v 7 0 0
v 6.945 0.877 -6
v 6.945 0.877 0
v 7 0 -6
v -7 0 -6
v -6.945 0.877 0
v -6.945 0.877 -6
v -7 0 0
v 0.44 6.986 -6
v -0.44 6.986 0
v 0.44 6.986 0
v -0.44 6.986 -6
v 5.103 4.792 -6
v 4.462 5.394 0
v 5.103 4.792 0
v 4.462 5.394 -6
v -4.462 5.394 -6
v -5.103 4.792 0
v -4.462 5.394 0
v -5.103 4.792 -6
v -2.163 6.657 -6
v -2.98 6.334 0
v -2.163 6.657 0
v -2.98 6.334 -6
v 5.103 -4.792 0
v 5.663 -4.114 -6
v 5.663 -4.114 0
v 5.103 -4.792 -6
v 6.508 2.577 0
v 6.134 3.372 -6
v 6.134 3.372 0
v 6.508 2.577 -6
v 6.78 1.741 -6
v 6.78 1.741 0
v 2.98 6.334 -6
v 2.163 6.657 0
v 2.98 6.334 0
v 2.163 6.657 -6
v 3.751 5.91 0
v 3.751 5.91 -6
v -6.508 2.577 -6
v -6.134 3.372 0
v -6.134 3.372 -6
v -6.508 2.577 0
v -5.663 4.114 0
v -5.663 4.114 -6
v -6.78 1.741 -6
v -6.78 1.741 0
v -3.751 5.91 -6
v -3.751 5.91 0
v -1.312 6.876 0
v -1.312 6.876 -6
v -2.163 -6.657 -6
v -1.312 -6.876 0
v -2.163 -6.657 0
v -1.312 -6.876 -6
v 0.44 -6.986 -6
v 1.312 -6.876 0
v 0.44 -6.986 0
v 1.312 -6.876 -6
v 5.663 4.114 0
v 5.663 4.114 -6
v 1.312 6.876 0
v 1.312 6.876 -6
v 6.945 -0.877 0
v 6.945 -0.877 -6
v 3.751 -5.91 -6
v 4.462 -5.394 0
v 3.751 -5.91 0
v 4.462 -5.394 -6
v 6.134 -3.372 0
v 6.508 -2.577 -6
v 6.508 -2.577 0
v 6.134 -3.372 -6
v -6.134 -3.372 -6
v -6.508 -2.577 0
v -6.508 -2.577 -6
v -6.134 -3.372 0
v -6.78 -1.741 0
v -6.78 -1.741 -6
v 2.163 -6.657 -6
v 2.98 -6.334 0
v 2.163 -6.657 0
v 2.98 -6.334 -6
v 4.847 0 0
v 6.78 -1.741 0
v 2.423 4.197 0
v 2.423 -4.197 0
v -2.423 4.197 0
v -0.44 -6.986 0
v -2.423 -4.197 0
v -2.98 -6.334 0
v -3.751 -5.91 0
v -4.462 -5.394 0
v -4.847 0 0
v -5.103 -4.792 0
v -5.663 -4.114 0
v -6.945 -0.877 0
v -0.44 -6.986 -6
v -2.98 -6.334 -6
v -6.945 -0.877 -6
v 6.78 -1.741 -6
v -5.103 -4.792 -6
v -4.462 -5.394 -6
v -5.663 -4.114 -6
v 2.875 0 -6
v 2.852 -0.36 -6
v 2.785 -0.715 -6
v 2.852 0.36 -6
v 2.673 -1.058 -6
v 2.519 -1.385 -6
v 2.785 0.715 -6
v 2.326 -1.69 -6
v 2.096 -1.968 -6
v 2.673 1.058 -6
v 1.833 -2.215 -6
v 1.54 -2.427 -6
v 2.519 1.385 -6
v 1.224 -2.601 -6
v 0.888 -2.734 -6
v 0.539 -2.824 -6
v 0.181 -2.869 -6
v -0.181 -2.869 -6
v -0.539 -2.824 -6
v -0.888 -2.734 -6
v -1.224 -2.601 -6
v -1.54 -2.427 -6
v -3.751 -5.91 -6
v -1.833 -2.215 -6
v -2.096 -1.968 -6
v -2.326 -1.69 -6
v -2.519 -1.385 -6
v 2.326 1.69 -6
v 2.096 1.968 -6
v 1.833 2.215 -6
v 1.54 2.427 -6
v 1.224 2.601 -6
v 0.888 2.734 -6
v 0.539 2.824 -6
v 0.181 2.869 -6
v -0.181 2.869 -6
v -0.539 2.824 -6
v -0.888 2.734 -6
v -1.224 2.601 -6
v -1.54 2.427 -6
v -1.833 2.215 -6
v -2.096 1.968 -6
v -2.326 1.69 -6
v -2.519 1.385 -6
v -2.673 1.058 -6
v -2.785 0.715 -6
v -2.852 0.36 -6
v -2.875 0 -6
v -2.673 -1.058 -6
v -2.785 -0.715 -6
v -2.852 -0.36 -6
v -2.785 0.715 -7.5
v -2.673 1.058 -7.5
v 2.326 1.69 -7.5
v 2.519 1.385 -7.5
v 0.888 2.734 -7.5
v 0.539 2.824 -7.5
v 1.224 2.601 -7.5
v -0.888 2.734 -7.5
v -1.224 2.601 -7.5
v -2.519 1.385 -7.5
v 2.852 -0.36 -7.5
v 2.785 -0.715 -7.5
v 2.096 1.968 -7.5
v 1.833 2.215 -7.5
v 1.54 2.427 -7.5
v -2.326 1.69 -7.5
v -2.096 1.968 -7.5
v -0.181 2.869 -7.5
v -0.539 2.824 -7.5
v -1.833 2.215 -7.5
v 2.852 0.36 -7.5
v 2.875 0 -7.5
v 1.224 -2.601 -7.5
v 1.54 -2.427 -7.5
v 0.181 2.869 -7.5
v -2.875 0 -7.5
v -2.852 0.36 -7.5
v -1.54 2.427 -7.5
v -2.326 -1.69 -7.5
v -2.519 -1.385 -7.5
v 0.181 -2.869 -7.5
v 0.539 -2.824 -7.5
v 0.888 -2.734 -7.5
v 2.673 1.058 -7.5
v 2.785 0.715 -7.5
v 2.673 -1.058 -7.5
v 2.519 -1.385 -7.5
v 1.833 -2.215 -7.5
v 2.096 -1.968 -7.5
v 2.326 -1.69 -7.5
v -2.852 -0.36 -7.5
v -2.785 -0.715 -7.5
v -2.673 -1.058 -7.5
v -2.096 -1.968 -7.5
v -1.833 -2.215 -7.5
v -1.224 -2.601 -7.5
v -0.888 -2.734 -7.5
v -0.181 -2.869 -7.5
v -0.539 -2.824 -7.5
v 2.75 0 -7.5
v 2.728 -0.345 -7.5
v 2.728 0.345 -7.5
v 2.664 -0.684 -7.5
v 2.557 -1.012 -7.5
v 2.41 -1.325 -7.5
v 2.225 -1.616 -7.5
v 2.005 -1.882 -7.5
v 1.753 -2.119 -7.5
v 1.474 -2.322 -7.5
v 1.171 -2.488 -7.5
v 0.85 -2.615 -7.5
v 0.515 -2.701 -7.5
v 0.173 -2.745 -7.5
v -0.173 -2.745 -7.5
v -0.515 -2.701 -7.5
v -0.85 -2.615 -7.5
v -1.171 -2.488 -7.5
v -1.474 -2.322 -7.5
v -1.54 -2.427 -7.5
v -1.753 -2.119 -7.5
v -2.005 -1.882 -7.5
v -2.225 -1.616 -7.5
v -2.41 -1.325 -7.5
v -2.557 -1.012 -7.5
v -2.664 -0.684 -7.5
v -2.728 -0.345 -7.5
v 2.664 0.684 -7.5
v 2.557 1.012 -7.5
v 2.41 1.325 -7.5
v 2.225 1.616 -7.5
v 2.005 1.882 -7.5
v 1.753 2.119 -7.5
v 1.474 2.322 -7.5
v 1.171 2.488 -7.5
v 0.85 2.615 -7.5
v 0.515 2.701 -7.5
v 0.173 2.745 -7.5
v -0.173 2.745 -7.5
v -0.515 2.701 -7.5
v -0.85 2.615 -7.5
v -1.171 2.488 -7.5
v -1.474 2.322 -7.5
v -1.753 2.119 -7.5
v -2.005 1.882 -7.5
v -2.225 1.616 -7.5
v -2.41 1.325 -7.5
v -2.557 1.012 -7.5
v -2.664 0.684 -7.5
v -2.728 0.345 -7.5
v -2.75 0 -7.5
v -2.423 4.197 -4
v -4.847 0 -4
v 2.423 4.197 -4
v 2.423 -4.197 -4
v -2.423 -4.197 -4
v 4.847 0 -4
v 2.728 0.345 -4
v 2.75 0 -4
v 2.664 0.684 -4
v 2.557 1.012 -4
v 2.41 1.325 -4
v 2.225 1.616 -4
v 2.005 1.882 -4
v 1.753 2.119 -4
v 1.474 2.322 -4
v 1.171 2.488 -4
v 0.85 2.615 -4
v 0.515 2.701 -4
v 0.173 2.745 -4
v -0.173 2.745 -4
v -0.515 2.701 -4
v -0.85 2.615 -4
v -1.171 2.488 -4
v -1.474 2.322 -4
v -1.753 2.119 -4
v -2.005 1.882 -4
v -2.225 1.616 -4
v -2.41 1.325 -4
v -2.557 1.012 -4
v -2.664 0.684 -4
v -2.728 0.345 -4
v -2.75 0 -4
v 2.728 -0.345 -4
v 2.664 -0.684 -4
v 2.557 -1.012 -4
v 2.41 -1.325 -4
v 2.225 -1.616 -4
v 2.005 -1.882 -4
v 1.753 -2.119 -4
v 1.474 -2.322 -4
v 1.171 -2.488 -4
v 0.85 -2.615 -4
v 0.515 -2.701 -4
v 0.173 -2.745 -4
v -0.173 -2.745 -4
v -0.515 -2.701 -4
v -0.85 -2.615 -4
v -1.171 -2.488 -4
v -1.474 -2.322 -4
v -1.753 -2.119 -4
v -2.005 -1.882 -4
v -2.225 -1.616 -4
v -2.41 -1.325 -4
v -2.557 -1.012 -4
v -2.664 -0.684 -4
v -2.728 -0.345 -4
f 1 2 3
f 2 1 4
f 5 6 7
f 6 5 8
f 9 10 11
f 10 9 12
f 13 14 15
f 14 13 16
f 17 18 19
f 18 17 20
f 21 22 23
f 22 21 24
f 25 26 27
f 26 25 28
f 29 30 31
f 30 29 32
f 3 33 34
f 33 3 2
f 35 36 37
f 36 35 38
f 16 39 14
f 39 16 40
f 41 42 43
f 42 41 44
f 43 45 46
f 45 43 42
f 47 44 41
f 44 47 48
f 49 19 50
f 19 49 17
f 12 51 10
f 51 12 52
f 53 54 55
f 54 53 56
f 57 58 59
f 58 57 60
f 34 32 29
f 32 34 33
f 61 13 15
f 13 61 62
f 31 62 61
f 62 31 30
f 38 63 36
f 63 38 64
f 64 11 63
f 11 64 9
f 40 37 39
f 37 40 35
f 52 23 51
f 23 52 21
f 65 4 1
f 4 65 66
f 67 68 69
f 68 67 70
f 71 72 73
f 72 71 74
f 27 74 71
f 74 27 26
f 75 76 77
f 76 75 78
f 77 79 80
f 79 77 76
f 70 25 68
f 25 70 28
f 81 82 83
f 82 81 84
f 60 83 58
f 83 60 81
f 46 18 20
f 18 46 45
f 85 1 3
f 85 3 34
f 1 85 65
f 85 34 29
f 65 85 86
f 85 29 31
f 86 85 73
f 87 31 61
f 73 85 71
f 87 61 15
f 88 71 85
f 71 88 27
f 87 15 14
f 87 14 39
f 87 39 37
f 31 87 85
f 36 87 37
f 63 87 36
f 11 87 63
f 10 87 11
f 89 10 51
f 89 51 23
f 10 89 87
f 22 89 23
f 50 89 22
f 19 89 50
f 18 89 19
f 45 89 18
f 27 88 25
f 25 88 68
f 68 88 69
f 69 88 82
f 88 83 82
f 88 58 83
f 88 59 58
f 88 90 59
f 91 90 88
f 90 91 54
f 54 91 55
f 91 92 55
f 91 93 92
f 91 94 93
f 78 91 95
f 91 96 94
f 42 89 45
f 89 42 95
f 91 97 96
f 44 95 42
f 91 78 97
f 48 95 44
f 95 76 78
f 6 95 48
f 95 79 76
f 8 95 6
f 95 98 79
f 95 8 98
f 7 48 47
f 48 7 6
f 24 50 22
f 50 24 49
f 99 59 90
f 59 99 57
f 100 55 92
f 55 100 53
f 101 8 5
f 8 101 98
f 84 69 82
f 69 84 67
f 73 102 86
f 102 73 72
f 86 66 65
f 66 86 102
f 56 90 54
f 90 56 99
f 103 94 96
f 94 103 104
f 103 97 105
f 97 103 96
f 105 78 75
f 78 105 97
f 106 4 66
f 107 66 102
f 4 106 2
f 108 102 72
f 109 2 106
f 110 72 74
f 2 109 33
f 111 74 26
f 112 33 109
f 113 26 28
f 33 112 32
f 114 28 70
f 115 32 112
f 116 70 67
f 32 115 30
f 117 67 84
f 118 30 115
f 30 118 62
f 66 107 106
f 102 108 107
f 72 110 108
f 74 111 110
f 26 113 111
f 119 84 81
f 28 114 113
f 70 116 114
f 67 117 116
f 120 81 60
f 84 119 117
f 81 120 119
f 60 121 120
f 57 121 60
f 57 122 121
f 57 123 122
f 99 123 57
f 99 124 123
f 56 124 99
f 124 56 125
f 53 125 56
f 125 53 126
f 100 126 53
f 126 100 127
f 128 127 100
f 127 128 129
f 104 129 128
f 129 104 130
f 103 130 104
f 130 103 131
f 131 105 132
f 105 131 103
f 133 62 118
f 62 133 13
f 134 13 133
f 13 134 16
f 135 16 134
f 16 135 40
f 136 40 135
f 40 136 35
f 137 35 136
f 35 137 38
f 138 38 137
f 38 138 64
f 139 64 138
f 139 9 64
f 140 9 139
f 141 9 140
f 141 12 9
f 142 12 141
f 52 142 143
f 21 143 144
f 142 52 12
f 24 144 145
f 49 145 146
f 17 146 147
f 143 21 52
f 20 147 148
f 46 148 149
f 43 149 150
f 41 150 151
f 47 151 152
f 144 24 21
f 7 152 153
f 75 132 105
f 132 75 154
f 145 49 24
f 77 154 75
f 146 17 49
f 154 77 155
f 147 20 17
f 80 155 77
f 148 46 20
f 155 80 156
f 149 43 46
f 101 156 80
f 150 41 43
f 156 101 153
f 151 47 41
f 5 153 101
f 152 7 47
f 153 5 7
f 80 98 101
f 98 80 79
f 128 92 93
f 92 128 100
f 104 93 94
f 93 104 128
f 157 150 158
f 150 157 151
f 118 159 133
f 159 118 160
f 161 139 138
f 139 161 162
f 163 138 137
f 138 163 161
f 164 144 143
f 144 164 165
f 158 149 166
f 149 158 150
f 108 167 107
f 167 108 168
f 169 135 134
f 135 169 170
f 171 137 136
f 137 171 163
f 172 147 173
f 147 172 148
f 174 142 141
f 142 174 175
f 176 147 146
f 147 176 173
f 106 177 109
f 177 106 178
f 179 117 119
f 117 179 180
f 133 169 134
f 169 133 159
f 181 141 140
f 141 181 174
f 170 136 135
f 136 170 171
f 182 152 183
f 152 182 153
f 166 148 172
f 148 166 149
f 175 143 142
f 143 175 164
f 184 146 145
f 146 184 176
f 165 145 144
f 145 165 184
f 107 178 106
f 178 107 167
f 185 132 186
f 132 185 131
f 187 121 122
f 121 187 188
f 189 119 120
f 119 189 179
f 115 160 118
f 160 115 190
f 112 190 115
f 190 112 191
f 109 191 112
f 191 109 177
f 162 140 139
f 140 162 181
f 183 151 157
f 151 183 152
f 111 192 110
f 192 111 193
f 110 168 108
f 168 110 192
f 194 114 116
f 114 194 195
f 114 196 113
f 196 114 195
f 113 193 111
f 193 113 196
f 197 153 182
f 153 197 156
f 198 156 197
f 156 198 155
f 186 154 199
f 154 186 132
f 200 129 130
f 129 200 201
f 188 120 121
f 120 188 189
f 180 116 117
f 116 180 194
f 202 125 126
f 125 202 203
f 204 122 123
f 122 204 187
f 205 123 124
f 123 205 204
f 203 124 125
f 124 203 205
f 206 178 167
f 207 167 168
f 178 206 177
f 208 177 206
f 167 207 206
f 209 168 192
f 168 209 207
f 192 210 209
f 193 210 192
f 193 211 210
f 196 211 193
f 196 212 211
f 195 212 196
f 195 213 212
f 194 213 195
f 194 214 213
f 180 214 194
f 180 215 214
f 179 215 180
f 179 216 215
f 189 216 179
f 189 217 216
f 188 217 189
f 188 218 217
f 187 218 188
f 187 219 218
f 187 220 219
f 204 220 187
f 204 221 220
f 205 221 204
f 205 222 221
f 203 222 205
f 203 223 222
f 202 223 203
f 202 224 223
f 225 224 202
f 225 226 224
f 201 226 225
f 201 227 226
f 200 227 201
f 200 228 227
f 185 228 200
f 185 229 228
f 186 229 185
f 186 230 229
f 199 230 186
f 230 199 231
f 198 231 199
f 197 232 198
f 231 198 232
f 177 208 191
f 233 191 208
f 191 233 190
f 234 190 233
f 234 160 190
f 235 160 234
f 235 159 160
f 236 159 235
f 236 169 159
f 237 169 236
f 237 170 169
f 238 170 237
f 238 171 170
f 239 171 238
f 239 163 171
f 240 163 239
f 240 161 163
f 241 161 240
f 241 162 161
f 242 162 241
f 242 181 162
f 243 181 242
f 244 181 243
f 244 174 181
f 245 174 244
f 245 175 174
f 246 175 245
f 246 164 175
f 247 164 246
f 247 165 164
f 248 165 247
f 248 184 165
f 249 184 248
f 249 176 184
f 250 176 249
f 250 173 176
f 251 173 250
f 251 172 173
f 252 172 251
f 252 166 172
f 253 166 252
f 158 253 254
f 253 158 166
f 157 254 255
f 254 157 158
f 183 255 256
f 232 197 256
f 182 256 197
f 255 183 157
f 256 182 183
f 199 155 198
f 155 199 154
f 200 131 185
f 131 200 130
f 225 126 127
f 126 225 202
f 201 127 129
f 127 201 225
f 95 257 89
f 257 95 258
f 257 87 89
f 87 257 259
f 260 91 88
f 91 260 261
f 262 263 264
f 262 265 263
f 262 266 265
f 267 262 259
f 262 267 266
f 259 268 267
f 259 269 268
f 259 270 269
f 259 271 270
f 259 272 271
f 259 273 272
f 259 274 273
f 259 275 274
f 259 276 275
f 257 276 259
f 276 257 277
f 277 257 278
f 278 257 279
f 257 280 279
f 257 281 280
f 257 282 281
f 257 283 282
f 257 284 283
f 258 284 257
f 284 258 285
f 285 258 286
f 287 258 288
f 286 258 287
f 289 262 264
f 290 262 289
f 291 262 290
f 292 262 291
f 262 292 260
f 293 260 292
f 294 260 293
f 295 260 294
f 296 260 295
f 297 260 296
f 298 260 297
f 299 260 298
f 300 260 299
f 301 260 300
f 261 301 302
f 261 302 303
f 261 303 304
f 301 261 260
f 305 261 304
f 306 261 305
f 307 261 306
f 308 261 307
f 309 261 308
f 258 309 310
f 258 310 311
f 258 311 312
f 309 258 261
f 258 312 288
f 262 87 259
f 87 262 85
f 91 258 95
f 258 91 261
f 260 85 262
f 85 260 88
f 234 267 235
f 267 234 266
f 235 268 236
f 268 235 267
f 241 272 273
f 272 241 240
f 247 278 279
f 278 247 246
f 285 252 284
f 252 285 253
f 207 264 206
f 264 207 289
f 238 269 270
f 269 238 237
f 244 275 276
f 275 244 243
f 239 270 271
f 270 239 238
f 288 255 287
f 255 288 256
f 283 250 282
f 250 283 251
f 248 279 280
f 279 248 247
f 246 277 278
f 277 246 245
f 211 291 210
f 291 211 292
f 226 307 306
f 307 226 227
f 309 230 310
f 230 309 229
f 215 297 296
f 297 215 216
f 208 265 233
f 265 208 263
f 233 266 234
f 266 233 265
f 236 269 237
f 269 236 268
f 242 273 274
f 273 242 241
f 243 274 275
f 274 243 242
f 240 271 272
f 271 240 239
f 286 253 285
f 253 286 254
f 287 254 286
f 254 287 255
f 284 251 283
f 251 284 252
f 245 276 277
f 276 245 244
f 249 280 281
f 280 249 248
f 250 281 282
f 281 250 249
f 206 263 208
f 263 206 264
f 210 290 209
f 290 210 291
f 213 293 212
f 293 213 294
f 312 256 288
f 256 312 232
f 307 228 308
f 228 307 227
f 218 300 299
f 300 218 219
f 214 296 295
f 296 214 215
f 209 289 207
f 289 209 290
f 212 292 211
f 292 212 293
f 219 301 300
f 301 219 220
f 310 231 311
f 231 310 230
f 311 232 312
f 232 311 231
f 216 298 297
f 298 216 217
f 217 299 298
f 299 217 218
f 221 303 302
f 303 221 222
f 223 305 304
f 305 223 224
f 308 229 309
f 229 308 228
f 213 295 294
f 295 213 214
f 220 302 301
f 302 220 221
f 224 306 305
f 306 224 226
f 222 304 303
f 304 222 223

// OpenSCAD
$fn = 50;


difference() {
	union() {
		translate(v = [0, 0, -6.0000000000]) {
			cylinder(h = 6.0000000000, r = 7.0000000000);
		}
		#translate(v = [0, 0, -7.5000000000]) {
			cylinder(h = 7.5000000000, r = 2.8750000000);
		}
	}
	union() {
		translate(v = [0, 0, 0]) {
			rotate(a = [0, 0, 0]) {
				difference() {
					union() {
						translate(v = [0, 0, -4]) {
							linear_extrude(height = 4) {
								polygon(points = [[4.8468000000, 0.0000000000], [2.4234000000, 4.1974519271], [-2.4234000000, 4.1974519271], [-4.8468000000, 0.0000000000], [-2.4234000000, -4.1974519271], [2.4234000000, -4.1974519271]]);
							}
						}
					}
					union();
				}
			}
		}
		#translate(v = [0, 0, -100.0000000000]) {
			cylinder(h = 200, r = 2.7500000000);
		}
	}
}
